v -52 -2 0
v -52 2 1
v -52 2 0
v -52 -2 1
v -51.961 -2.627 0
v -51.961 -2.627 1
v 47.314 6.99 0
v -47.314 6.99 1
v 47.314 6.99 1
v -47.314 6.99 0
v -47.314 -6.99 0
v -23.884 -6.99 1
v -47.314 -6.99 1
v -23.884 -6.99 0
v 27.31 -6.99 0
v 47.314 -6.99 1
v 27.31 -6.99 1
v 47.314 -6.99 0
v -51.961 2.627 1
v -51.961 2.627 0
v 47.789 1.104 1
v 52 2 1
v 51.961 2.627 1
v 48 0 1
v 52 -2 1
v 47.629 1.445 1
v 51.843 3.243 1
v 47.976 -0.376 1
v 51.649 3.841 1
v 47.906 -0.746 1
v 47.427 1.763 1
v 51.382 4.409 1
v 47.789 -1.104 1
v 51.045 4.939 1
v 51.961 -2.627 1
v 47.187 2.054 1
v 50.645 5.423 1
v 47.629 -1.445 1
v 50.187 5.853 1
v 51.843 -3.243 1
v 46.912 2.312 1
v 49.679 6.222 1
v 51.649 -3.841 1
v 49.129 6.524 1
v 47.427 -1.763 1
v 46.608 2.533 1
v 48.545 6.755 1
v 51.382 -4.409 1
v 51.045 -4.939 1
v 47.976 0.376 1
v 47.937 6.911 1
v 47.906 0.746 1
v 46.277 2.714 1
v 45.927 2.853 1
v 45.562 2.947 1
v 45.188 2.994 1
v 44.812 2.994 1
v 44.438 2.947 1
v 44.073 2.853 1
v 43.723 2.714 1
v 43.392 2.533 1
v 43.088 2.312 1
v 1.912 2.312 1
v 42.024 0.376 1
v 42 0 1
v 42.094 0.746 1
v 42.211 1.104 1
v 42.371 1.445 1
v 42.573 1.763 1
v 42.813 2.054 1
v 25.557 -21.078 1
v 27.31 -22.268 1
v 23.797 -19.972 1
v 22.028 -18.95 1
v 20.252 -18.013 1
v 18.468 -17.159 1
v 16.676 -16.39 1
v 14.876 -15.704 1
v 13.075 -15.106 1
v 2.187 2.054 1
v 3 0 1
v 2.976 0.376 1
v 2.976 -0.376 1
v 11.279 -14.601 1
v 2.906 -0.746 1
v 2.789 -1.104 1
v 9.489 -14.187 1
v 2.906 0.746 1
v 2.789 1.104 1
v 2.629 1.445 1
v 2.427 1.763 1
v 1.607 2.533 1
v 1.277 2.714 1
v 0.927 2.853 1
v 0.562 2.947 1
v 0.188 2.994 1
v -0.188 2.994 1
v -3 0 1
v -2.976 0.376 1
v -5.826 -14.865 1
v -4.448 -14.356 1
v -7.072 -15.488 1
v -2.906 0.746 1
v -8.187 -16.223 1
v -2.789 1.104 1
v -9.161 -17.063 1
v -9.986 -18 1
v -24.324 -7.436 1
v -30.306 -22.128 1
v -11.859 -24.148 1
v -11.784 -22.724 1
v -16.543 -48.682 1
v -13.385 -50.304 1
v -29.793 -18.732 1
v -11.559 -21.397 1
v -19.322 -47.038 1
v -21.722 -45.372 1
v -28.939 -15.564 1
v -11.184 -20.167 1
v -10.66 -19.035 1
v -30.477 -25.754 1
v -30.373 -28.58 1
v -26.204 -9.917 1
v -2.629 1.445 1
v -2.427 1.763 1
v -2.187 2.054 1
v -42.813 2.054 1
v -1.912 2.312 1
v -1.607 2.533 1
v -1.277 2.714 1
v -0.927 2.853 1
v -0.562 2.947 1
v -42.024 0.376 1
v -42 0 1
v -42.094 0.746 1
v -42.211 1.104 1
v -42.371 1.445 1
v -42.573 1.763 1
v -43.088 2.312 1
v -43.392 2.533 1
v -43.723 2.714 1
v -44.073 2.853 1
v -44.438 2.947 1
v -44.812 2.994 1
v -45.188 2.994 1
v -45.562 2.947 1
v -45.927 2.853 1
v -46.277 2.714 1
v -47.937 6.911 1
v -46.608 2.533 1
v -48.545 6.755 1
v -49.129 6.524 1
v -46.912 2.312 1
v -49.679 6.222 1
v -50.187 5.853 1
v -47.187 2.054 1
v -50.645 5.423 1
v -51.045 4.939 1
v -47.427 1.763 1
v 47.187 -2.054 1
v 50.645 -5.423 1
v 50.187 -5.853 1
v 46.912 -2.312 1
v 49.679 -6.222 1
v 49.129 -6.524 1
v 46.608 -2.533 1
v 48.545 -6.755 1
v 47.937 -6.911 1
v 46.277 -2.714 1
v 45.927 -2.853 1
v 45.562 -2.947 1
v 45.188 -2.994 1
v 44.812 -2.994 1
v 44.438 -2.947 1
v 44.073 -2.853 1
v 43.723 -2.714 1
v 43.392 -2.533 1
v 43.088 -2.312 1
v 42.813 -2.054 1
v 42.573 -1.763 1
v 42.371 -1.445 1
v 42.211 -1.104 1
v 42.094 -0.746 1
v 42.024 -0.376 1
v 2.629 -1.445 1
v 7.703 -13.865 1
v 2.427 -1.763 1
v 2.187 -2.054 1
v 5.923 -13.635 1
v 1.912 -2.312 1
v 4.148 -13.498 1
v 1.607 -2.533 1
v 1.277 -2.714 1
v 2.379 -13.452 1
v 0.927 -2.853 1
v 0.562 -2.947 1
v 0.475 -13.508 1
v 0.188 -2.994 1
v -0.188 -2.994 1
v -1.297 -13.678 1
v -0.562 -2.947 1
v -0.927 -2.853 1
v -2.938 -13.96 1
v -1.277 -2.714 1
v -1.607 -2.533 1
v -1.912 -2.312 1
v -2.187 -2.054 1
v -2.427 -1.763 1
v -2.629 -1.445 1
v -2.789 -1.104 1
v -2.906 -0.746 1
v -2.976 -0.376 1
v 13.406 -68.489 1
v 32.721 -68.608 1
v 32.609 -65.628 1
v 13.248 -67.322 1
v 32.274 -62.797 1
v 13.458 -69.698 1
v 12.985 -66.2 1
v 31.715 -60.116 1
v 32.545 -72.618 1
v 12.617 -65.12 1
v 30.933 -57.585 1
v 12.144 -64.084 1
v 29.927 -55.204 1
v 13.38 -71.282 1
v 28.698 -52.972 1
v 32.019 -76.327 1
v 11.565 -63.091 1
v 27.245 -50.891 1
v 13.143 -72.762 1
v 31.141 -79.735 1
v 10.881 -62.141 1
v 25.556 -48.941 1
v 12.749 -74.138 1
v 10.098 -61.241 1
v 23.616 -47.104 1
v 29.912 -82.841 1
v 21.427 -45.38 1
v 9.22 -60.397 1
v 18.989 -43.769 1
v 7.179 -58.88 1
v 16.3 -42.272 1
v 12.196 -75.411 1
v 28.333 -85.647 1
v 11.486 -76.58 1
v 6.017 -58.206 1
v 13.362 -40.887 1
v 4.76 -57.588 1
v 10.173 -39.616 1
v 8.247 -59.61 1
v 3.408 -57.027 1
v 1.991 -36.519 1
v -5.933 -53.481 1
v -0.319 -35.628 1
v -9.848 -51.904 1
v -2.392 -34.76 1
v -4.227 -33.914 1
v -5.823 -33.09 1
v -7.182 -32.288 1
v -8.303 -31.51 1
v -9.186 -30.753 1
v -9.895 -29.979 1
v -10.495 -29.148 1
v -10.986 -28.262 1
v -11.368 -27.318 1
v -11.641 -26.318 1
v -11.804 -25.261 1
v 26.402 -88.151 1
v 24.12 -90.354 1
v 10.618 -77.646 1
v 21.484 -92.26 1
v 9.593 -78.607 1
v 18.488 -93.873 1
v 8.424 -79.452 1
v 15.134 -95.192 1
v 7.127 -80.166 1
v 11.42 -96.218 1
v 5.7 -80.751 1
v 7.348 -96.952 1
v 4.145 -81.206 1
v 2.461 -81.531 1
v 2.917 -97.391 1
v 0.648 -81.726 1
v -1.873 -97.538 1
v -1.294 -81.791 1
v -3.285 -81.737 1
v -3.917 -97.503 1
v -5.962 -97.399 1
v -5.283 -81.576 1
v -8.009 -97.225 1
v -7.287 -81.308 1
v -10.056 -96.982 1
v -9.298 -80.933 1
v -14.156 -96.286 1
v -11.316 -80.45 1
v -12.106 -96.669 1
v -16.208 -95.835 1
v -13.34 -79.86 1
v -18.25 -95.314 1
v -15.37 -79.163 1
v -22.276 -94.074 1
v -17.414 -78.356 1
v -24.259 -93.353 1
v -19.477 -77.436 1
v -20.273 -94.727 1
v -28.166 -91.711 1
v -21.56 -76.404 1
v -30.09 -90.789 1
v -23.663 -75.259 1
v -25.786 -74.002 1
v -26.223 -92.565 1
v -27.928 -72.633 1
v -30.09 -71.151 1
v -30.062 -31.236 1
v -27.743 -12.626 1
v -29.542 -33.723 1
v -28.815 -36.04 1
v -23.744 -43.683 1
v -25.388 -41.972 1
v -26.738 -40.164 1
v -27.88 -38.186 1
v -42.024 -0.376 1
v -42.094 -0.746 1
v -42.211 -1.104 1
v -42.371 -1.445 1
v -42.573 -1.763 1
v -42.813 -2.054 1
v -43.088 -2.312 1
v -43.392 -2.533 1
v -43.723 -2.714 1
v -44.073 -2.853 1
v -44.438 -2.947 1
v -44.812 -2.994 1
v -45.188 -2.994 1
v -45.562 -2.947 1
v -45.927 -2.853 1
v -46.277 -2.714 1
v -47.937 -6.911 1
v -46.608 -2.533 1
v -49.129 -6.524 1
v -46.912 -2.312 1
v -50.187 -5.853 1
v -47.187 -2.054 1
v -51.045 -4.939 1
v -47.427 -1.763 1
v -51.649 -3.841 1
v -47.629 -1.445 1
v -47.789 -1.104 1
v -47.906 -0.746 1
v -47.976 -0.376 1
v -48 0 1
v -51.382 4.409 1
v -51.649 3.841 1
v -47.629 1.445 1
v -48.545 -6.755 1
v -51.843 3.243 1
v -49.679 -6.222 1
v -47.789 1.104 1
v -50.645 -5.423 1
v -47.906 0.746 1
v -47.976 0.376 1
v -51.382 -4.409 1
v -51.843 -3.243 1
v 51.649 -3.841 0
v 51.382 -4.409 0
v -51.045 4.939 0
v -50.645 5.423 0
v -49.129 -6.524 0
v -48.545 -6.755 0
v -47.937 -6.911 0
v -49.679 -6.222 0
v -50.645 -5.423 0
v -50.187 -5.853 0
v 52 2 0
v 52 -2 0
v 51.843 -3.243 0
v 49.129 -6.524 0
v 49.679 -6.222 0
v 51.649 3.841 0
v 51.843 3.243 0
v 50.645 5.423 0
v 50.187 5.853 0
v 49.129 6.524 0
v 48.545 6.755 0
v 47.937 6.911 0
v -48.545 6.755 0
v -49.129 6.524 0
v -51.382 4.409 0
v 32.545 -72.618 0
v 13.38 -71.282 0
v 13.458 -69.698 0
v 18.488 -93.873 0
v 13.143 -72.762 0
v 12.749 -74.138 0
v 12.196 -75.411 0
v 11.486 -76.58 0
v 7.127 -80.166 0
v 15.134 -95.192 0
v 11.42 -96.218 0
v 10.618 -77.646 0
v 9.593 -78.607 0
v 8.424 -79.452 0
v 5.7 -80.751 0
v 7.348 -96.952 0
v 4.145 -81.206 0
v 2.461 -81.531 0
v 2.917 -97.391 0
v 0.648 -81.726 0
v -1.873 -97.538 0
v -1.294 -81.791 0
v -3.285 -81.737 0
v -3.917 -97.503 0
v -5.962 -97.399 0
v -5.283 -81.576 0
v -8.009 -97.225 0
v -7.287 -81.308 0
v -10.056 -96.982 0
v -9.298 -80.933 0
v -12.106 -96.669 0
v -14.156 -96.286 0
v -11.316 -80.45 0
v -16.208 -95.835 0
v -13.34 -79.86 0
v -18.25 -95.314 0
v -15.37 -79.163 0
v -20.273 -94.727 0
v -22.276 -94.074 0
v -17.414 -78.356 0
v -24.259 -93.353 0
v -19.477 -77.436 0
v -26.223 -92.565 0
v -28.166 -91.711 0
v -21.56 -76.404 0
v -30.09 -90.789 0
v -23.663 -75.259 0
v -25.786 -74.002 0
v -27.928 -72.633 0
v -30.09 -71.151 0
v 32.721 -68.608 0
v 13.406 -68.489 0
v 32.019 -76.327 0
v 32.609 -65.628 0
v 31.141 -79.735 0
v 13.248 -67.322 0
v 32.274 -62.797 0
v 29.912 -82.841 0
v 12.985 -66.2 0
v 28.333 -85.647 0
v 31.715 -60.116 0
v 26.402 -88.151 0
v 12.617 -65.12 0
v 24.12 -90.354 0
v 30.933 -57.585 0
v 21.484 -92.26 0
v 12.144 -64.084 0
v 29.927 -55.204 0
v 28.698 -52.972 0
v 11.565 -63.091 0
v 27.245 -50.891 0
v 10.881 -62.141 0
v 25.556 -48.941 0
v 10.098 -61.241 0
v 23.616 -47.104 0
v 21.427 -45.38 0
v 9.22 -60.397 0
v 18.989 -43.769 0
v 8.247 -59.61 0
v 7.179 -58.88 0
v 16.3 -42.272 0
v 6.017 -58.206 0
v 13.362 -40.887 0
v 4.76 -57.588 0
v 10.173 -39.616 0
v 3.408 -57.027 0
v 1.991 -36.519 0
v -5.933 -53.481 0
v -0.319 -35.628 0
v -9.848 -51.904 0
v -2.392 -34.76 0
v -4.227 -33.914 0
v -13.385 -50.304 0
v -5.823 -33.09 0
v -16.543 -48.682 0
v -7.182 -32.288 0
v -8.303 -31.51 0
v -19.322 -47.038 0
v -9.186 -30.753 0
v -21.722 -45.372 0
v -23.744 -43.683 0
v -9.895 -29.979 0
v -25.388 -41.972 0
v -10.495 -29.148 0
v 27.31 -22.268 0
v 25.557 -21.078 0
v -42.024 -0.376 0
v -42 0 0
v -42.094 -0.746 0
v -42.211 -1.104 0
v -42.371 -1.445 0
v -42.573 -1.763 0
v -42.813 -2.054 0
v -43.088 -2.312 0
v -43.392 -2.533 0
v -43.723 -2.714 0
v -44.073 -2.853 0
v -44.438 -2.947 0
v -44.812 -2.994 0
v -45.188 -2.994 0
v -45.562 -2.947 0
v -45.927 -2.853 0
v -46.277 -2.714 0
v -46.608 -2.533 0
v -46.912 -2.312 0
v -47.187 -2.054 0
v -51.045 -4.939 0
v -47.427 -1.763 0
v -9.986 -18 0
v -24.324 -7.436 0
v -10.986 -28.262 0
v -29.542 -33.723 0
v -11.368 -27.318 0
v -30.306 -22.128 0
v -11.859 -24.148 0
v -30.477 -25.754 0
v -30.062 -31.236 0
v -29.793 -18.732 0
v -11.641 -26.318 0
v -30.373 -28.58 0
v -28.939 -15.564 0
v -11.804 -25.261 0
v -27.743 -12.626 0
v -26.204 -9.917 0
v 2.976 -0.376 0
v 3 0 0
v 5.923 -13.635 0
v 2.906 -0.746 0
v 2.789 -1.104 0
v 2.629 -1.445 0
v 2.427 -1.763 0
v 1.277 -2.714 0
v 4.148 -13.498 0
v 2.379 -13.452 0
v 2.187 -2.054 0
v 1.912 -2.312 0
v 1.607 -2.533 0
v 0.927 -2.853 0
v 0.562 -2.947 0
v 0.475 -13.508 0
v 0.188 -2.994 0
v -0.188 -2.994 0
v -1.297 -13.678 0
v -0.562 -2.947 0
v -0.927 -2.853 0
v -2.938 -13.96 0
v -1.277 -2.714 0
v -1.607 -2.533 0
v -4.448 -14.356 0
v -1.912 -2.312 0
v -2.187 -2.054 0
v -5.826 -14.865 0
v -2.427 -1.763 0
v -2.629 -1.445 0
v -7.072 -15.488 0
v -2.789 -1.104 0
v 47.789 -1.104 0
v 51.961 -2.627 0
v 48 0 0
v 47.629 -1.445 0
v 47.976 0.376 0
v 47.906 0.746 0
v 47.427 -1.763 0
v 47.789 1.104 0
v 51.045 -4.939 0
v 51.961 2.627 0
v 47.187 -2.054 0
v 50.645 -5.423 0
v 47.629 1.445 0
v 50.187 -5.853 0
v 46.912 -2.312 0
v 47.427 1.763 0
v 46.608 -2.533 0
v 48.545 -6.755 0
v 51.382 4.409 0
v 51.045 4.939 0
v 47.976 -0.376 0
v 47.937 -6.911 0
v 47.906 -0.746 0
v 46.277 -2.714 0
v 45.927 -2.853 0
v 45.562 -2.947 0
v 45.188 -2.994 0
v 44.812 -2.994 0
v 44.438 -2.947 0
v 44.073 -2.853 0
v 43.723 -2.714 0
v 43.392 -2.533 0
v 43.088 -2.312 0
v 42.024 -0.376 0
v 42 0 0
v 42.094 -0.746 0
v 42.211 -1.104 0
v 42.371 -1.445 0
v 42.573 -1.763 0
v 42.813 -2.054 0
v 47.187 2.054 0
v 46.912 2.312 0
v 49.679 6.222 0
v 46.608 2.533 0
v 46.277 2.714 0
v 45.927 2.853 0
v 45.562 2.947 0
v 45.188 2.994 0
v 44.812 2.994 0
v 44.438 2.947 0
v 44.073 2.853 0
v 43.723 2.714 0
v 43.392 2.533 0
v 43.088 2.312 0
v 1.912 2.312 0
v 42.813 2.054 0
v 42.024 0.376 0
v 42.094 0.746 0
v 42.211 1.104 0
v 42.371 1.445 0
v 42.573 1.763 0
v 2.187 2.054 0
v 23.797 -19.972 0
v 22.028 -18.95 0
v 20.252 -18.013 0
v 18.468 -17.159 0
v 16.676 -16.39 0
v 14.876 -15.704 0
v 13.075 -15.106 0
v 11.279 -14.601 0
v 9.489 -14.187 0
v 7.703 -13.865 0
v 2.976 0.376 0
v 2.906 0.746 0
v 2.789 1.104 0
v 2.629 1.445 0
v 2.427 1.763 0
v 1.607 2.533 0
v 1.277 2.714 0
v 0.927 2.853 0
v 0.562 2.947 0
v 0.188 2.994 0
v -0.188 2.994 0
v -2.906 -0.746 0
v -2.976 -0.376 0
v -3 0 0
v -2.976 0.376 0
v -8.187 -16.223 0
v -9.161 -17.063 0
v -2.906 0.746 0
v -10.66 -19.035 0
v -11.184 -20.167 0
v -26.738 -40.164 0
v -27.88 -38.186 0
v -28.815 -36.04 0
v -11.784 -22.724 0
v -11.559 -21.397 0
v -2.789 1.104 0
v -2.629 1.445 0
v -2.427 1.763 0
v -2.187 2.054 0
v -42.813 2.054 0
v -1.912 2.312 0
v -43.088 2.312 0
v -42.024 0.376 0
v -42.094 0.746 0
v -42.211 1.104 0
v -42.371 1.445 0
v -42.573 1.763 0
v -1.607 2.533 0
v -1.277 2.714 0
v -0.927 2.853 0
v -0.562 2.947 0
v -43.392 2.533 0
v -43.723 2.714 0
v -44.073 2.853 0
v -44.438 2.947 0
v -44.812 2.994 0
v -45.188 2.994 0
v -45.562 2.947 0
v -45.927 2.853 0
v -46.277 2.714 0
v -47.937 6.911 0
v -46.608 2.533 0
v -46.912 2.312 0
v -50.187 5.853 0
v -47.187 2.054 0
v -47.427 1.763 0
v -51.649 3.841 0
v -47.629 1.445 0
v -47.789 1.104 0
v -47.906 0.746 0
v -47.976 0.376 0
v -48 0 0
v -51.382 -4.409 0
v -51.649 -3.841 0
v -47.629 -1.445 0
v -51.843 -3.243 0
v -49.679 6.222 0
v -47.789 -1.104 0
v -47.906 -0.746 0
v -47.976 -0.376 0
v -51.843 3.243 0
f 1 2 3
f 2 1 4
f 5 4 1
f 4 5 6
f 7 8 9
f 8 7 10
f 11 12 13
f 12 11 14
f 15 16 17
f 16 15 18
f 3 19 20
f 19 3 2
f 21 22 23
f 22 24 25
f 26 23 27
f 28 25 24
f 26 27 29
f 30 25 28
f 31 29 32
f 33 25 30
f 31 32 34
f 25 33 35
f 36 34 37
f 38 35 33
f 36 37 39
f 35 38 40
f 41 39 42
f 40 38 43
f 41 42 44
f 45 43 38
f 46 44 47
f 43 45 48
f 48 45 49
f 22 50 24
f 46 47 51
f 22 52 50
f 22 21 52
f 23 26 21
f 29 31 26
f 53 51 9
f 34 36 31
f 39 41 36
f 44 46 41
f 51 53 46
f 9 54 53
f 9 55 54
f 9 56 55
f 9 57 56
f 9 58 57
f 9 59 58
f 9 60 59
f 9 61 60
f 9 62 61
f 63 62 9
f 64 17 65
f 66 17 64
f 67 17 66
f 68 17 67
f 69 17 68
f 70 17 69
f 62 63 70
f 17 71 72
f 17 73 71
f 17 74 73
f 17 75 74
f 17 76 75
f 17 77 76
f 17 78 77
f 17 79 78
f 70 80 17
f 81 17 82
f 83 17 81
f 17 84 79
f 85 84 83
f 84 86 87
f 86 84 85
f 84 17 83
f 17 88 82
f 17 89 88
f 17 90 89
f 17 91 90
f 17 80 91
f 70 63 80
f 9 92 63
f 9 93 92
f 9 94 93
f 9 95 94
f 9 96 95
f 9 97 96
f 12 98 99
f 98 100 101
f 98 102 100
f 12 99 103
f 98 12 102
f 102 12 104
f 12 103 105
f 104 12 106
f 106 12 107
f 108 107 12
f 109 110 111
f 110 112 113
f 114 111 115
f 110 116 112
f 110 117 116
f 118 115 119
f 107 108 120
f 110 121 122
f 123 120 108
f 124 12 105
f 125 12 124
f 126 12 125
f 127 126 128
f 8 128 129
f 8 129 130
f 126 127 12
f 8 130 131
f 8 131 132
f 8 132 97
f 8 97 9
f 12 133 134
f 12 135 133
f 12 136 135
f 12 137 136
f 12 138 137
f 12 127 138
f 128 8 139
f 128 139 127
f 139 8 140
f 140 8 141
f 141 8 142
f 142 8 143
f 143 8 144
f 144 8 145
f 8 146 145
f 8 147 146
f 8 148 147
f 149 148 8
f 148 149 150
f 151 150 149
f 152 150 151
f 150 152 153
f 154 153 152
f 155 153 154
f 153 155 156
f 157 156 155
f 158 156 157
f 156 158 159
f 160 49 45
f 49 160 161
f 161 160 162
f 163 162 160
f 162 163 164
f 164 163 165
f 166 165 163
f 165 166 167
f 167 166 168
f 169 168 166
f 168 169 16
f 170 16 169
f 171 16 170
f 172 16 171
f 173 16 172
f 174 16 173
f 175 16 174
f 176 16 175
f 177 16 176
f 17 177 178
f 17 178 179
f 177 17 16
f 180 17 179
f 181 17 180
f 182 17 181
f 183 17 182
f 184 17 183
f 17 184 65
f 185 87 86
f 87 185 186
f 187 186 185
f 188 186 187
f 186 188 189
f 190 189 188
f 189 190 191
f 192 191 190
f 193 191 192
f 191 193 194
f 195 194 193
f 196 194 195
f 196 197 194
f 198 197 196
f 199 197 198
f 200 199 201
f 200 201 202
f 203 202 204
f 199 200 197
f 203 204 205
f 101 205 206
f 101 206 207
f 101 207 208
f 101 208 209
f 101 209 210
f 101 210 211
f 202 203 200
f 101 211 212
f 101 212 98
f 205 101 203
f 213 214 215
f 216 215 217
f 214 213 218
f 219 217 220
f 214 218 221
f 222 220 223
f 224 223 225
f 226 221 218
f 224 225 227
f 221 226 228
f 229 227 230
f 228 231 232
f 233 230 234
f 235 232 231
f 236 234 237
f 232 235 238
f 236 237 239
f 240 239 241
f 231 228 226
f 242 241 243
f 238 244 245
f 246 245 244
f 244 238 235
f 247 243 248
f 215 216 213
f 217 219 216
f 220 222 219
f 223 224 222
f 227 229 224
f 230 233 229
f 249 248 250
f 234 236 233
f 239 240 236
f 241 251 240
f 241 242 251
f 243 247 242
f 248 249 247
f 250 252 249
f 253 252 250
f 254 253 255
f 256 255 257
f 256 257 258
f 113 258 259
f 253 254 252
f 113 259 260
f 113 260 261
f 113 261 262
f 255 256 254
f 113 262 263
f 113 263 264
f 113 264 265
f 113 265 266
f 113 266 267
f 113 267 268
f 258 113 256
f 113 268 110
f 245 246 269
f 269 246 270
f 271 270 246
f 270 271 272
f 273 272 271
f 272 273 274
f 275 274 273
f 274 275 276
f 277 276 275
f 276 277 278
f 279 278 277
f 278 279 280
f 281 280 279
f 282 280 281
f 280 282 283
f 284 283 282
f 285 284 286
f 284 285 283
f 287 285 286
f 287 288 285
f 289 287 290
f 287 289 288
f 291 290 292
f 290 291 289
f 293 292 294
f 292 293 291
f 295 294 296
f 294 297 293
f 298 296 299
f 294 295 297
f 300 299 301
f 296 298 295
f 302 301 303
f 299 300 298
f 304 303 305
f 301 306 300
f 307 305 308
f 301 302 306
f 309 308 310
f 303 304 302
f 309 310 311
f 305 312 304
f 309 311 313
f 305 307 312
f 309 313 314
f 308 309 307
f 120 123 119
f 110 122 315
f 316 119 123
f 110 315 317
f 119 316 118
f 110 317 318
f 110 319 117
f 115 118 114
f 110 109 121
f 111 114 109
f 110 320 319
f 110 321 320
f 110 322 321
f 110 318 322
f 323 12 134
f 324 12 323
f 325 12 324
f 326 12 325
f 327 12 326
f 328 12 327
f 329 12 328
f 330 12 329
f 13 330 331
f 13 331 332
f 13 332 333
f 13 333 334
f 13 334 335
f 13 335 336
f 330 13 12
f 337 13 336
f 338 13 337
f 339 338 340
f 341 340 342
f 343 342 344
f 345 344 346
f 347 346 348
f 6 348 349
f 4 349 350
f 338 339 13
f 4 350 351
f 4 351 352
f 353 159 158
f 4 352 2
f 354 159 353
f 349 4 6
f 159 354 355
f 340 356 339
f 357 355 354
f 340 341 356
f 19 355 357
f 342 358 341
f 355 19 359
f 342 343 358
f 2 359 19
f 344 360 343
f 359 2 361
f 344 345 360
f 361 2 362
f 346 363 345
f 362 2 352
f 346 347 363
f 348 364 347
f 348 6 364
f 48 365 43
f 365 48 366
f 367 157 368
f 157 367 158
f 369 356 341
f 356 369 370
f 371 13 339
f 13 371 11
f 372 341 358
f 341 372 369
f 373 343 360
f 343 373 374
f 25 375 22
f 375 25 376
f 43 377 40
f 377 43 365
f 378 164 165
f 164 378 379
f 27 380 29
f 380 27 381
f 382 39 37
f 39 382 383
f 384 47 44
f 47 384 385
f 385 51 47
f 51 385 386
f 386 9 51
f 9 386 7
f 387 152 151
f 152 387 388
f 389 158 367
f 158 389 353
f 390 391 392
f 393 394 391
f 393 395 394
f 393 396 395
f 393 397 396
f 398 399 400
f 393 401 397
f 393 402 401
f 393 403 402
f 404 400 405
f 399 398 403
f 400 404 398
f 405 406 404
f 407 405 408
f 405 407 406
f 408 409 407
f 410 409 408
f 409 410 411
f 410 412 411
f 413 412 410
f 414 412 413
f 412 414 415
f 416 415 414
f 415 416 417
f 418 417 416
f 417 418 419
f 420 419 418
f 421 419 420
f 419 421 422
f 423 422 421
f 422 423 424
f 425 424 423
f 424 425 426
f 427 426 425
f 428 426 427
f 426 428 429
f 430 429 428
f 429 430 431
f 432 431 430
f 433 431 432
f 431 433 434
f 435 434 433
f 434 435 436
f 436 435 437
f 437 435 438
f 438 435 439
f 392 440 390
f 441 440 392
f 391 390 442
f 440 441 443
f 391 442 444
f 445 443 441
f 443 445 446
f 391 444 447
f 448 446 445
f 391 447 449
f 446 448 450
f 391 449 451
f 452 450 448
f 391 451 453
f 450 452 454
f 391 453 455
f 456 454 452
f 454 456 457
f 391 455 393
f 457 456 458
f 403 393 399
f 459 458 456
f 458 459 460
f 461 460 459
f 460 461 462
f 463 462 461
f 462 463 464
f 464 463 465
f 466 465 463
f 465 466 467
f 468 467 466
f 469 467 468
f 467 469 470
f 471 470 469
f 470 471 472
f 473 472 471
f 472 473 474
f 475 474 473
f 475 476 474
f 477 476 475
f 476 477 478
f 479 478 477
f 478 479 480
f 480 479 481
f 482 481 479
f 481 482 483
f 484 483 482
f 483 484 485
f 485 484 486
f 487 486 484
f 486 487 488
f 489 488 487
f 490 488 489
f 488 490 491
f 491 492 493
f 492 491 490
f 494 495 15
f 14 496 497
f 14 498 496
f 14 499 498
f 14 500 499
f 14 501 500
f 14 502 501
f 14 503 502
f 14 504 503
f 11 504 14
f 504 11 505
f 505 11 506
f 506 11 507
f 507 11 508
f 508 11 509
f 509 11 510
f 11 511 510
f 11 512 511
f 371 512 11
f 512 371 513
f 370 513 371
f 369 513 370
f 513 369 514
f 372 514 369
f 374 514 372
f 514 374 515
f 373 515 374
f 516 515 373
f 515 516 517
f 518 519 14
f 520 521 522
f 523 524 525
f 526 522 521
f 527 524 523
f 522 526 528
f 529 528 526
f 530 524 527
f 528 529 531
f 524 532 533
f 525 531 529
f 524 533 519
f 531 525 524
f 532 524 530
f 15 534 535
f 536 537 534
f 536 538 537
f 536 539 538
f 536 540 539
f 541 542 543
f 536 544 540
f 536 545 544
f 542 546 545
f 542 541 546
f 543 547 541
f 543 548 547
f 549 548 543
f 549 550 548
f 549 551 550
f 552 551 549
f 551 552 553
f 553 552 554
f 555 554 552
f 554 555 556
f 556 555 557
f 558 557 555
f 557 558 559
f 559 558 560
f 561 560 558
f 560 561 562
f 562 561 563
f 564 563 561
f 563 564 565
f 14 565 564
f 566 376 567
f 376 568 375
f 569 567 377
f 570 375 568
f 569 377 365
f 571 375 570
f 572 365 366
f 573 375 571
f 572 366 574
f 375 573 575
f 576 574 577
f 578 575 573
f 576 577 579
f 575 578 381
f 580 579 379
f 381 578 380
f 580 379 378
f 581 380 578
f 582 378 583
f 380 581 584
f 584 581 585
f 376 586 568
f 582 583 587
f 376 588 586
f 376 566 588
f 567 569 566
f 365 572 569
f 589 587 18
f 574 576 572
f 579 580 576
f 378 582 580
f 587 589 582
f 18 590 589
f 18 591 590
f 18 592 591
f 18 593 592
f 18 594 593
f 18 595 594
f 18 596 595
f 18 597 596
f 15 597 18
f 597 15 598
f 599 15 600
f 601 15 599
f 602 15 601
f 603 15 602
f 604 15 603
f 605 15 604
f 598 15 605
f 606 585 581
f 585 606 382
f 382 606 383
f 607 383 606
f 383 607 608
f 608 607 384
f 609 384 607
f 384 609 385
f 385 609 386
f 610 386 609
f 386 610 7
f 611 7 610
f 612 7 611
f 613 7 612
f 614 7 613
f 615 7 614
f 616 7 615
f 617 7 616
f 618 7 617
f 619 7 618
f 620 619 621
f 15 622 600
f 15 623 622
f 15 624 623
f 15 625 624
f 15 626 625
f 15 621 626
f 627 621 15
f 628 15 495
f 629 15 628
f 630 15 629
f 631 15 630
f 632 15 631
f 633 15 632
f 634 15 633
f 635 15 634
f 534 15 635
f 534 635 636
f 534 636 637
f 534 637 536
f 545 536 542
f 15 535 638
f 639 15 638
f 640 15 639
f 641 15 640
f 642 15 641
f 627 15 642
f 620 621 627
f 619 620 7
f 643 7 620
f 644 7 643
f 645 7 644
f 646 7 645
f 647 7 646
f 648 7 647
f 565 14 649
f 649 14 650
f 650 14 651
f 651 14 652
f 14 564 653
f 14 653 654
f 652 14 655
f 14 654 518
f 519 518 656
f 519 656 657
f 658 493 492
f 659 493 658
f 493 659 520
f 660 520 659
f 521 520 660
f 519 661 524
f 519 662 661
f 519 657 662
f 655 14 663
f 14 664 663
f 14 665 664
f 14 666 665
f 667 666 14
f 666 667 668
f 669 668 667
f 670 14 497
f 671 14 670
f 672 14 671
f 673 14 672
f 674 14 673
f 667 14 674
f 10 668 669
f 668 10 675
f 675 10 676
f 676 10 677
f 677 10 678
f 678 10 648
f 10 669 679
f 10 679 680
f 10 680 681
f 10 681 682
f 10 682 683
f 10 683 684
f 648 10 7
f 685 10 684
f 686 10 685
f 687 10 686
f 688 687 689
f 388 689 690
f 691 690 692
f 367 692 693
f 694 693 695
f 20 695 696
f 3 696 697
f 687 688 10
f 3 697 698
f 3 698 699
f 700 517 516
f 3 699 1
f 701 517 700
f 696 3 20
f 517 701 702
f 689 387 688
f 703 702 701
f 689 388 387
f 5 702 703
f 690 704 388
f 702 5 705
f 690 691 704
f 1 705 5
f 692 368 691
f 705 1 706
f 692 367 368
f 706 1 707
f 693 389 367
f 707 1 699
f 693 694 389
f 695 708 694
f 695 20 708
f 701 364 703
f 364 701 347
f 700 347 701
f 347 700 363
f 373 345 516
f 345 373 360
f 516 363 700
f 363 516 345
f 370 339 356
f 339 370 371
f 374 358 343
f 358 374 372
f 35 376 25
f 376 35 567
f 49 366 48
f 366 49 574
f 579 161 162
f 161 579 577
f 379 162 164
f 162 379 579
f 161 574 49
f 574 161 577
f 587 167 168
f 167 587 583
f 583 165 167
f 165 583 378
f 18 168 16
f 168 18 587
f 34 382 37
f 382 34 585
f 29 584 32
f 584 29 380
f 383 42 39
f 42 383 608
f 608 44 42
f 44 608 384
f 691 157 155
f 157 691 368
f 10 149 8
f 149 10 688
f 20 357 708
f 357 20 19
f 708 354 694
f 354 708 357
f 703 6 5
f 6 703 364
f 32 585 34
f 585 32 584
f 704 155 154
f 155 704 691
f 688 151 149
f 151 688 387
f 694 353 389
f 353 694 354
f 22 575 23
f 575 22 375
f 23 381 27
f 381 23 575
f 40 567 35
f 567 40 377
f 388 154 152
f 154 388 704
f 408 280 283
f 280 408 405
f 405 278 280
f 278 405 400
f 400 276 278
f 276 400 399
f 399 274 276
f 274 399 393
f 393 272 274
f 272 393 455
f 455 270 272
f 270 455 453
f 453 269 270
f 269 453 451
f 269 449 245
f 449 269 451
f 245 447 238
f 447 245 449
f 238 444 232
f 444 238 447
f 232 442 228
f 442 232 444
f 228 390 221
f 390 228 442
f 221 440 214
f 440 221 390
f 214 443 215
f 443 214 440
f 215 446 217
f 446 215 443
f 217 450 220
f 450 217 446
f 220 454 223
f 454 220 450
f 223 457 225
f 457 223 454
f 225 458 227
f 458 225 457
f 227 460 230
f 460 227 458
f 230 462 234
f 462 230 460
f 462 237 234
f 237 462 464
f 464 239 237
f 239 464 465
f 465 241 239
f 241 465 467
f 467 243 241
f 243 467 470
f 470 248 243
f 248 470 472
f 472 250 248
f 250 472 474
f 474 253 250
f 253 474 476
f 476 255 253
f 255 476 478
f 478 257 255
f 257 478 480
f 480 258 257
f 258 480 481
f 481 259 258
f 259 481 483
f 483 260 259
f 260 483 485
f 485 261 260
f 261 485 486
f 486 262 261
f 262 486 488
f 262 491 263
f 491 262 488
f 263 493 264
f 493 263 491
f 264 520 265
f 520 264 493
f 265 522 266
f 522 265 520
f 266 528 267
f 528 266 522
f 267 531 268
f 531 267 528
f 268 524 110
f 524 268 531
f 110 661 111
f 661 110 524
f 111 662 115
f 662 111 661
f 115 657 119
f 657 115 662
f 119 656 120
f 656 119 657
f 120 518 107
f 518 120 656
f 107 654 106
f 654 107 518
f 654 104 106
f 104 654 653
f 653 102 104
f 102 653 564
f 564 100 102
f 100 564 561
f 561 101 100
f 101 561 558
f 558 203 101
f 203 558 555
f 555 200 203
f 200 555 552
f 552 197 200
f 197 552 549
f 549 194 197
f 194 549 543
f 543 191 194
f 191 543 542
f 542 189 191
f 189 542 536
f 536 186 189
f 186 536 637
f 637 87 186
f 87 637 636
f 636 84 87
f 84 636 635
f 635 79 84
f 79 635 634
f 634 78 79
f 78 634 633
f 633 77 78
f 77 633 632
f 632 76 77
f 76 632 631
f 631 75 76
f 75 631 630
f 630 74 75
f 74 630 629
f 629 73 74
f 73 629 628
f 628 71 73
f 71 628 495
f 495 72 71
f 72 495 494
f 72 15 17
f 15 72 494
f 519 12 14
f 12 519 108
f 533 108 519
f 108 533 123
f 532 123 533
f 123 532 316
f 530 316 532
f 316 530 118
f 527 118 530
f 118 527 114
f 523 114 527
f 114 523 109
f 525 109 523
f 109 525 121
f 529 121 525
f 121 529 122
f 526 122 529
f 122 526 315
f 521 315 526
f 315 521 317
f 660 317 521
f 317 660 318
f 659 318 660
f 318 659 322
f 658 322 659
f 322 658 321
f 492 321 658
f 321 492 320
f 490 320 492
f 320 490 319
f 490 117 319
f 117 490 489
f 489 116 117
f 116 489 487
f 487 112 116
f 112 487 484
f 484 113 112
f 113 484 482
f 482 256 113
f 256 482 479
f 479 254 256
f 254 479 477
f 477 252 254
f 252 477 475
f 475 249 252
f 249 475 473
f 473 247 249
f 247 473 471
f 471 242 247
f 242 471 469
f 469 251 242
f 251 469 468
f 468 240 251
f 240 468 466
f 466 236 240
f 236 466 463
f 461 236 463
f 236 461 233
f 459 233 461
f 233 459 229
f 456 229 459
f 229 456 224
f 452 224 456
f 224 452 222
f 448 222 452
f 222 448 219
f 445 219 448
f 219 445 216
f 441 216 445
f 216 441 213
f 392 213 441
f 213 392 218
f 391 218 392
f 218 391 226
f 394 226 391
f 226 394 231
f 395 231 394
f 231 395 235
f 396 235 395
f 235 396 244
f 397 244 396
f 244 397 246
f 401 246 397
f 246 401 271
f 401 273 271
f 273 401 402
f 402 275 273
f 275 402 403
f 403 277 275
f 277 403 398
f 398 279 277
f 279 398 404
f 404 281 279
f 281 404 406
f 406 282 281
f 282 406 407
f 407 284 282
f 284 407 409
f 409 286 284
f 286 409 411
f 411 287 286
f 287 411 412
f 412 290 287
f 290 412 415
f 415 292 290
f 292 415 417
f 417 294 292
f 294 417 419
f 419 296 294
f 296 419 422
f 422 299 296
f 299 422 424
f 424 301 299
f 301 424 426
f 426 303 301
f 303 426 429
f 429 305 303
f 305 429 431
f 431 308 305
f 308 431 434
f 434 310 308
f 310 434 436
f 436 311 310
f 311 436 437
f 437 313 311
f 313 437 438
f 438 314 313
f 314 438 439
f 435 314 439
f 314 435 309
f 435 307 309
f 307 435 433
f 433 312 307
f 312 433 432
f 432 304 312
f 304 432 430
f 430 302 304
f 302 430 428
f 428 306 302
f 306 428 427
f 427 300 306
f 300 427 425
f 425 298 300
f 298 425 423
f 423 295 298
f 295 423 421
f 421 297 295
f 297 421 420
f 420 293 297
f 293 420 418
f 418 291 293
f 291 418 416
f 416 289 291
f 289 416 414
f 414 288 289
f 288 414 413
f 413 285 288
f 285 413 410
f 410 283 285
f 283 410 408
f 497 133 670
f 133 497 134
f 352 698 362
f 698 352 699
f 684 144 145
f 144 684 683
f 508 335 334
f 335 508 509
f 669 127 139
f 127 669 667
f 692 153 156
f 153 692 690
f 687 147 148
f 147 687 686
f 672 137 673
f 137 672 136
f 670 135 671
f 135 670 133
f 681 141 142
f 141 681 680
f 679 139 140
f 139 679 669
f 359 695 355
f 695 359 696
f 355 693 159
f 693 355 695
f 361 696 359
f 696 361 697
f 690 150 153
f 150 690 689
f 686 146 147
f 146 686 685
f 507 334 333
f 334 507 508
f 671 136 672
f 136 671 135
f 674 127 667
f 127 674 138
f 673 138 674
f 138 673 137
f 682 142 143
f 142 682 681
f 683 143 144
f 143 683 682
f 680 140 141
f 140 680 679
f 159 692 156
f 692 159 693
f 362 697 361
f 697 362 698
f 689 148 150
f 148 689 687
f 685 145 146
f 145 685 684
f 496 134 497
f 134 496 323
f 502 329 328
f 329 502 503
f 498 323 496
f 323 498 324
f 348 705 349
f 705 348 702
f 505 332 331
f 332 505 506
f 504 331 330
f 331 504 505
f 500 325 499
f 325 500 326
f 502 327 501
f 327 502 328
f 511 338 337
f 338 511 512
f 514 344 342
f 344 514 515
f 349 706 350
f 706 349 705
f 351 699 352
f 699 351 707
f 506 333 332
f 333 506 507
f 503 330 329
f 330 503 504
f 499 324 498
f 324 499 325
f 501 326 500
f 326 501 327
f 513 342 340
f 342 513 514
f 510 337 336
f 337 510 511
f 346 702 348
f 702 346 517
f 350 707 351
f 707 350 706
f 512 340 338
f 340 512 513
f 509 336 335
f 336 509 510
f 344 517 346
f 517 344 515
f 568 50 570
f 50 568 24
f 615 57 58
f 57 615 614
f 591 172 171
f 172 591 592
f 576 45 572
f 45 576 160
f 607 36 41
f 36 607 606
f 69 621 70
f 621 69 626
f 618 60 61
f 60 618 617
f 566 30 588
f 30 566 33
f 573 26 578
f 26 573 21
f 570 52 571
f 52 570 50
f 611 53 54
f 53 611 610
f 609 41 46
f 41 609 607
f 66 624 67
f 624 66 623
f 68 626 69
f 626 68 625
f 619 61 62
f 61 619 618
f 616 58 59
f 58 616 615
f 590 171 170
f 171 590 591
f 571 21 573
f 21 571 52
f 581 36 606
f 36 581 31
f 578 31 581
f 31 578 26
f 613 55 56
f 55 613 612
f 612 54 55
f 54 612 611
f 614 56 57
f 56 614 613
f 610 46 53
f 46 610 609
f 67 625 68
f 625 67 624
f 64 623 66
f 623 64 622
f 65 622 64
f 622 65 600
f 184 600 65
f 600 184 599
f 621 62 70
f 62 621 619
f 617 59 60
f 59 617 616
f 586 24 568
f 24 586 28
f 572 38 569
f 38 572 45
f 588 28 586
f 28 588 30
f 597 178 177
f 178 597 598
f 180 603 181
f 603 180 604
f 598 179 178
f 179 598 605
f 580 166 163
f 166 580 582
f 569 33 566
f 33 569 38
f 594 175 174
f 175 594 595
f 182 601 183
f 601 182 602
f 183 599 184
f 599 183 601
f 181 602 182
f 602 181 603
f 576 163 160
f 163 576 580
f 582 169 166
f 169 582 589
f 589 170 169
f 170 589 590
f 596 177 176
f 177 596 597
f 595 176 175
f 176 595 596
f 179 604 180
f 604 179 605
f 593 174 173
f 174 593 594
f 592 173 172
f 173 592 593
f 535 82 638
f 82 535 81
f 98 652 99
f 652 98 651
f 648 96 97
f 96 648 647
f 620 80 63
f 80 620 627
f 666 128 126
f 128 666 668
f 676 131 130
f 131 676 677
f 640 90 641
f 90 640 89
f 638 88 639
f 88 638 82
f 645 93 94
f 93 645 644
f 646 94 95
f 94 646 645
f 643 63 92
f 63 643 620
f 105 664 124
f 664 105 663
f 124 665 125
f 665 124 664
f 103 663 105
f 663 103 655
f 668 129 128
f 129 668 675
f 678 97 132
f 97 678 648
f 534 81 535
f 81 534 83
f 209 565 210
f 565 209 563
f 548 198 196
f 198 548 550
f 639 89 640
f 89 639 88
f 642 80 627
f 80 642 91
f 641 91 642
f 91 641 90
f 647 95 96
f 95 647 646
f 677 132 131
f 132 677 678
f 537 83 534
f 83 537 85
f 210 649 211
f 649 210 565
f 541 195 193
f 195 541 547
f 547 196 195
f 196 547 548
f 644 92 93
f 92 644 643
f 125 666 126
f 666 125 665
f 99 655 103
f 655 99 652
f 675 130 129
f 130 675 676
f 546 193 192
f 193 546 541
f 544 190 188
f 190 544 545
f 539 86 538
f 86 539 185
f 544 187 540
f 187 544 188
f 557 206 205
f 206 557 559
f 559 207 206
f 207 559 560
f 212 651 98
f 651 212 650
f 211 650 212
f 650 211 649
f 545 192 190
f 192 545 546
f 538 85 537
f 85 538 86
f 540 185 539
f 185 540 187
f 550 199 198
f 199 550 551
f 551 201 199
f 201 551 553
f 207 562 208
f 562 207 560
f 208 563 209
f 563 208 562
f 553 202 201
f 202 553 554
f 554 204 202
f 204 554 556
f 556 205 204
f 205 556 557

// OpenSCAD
$fn = 50;


difference() {
	union() {
		translate(v = [0, 0, 0]) {
			rotate(a = [0, 0, 0]) {
				hull() {
					translate(v = [-47.0000000000, 2.0000000000, 0]) {
						rotate(a = [0, 0, 0]) {
							translate(v = [0, 0, 0]) {
								rotate(a = [0, 0, 0]) {
									cylinder(h = 1, r = 5);
								}
							}
						}
					}
					translate(v = [47.0000000000, 2.0000000000, 0]) {
						rotate(a = [0, 0, 0]) {
							translate(v = [0, 0, 0]) {
								rotate(a = [0, 0, 0]) {
									cylinder(h = 1, r = 5);
								}
							}
						}
					}
					translate(v = [-47.0000000000, -2.0000000000, 0]) {
						rotate(a = [0, 0, 0]) {
							translate(v = [0, 0, 0]) {
								rotate(a = [0, 0, 0]) {
									cylinder(h = 1, r = 5);
								}
							}
						}
					}
					translate(v = [47.0000000000, -2.0000000000, 0]) {
						rotate(a = [0, 0, 0]) {
							translate(v = [0, 0, 0]) {
								rotate(a = [0, 0, 0]) {
									cylinder(h = 1, r = 5);
								}
							}
						}
					}
				}
			}
		}
		translate(v = [0, 0, 0]) {
			rotate(a = [0, 0, 0]) {
				linear_extrude(height = 1) {
					text(font = "DejaVu Sans Mono:style=Bold", halign = "center", size = 95, text = "S", valign = "top");
				}
			}
		}
	}
	union() {
		translate(v = [-45.0000000000, 0.0000000000, -125.0000000000]) {
			rotate(a = [0, 0, 0]) {
				cylinder(h = 250, r = 3.0000000000);
			}
		}
		translate(v = [45.0000000000, 0.0000000000, -125.0000000000]) {
			rotate(a = [0, 0, 0]) {
				cylinder(h = 250, r = 3.0000000000);
			}
		}
		translate(v = [45.0000000000, 0.0000000000, -125.0000000000]) {
			rotate(a = [0, 0, 0]) {
				cylinder(h = 250, r = 3.0000000000);
			}
		}
		translate(v = [0, 0, -125.0000000000]) {
			rotate(a = [0, 0, 0]) {
				cylinder(h = 250, r = 3.0000000000);
			}
		}
	}
}
